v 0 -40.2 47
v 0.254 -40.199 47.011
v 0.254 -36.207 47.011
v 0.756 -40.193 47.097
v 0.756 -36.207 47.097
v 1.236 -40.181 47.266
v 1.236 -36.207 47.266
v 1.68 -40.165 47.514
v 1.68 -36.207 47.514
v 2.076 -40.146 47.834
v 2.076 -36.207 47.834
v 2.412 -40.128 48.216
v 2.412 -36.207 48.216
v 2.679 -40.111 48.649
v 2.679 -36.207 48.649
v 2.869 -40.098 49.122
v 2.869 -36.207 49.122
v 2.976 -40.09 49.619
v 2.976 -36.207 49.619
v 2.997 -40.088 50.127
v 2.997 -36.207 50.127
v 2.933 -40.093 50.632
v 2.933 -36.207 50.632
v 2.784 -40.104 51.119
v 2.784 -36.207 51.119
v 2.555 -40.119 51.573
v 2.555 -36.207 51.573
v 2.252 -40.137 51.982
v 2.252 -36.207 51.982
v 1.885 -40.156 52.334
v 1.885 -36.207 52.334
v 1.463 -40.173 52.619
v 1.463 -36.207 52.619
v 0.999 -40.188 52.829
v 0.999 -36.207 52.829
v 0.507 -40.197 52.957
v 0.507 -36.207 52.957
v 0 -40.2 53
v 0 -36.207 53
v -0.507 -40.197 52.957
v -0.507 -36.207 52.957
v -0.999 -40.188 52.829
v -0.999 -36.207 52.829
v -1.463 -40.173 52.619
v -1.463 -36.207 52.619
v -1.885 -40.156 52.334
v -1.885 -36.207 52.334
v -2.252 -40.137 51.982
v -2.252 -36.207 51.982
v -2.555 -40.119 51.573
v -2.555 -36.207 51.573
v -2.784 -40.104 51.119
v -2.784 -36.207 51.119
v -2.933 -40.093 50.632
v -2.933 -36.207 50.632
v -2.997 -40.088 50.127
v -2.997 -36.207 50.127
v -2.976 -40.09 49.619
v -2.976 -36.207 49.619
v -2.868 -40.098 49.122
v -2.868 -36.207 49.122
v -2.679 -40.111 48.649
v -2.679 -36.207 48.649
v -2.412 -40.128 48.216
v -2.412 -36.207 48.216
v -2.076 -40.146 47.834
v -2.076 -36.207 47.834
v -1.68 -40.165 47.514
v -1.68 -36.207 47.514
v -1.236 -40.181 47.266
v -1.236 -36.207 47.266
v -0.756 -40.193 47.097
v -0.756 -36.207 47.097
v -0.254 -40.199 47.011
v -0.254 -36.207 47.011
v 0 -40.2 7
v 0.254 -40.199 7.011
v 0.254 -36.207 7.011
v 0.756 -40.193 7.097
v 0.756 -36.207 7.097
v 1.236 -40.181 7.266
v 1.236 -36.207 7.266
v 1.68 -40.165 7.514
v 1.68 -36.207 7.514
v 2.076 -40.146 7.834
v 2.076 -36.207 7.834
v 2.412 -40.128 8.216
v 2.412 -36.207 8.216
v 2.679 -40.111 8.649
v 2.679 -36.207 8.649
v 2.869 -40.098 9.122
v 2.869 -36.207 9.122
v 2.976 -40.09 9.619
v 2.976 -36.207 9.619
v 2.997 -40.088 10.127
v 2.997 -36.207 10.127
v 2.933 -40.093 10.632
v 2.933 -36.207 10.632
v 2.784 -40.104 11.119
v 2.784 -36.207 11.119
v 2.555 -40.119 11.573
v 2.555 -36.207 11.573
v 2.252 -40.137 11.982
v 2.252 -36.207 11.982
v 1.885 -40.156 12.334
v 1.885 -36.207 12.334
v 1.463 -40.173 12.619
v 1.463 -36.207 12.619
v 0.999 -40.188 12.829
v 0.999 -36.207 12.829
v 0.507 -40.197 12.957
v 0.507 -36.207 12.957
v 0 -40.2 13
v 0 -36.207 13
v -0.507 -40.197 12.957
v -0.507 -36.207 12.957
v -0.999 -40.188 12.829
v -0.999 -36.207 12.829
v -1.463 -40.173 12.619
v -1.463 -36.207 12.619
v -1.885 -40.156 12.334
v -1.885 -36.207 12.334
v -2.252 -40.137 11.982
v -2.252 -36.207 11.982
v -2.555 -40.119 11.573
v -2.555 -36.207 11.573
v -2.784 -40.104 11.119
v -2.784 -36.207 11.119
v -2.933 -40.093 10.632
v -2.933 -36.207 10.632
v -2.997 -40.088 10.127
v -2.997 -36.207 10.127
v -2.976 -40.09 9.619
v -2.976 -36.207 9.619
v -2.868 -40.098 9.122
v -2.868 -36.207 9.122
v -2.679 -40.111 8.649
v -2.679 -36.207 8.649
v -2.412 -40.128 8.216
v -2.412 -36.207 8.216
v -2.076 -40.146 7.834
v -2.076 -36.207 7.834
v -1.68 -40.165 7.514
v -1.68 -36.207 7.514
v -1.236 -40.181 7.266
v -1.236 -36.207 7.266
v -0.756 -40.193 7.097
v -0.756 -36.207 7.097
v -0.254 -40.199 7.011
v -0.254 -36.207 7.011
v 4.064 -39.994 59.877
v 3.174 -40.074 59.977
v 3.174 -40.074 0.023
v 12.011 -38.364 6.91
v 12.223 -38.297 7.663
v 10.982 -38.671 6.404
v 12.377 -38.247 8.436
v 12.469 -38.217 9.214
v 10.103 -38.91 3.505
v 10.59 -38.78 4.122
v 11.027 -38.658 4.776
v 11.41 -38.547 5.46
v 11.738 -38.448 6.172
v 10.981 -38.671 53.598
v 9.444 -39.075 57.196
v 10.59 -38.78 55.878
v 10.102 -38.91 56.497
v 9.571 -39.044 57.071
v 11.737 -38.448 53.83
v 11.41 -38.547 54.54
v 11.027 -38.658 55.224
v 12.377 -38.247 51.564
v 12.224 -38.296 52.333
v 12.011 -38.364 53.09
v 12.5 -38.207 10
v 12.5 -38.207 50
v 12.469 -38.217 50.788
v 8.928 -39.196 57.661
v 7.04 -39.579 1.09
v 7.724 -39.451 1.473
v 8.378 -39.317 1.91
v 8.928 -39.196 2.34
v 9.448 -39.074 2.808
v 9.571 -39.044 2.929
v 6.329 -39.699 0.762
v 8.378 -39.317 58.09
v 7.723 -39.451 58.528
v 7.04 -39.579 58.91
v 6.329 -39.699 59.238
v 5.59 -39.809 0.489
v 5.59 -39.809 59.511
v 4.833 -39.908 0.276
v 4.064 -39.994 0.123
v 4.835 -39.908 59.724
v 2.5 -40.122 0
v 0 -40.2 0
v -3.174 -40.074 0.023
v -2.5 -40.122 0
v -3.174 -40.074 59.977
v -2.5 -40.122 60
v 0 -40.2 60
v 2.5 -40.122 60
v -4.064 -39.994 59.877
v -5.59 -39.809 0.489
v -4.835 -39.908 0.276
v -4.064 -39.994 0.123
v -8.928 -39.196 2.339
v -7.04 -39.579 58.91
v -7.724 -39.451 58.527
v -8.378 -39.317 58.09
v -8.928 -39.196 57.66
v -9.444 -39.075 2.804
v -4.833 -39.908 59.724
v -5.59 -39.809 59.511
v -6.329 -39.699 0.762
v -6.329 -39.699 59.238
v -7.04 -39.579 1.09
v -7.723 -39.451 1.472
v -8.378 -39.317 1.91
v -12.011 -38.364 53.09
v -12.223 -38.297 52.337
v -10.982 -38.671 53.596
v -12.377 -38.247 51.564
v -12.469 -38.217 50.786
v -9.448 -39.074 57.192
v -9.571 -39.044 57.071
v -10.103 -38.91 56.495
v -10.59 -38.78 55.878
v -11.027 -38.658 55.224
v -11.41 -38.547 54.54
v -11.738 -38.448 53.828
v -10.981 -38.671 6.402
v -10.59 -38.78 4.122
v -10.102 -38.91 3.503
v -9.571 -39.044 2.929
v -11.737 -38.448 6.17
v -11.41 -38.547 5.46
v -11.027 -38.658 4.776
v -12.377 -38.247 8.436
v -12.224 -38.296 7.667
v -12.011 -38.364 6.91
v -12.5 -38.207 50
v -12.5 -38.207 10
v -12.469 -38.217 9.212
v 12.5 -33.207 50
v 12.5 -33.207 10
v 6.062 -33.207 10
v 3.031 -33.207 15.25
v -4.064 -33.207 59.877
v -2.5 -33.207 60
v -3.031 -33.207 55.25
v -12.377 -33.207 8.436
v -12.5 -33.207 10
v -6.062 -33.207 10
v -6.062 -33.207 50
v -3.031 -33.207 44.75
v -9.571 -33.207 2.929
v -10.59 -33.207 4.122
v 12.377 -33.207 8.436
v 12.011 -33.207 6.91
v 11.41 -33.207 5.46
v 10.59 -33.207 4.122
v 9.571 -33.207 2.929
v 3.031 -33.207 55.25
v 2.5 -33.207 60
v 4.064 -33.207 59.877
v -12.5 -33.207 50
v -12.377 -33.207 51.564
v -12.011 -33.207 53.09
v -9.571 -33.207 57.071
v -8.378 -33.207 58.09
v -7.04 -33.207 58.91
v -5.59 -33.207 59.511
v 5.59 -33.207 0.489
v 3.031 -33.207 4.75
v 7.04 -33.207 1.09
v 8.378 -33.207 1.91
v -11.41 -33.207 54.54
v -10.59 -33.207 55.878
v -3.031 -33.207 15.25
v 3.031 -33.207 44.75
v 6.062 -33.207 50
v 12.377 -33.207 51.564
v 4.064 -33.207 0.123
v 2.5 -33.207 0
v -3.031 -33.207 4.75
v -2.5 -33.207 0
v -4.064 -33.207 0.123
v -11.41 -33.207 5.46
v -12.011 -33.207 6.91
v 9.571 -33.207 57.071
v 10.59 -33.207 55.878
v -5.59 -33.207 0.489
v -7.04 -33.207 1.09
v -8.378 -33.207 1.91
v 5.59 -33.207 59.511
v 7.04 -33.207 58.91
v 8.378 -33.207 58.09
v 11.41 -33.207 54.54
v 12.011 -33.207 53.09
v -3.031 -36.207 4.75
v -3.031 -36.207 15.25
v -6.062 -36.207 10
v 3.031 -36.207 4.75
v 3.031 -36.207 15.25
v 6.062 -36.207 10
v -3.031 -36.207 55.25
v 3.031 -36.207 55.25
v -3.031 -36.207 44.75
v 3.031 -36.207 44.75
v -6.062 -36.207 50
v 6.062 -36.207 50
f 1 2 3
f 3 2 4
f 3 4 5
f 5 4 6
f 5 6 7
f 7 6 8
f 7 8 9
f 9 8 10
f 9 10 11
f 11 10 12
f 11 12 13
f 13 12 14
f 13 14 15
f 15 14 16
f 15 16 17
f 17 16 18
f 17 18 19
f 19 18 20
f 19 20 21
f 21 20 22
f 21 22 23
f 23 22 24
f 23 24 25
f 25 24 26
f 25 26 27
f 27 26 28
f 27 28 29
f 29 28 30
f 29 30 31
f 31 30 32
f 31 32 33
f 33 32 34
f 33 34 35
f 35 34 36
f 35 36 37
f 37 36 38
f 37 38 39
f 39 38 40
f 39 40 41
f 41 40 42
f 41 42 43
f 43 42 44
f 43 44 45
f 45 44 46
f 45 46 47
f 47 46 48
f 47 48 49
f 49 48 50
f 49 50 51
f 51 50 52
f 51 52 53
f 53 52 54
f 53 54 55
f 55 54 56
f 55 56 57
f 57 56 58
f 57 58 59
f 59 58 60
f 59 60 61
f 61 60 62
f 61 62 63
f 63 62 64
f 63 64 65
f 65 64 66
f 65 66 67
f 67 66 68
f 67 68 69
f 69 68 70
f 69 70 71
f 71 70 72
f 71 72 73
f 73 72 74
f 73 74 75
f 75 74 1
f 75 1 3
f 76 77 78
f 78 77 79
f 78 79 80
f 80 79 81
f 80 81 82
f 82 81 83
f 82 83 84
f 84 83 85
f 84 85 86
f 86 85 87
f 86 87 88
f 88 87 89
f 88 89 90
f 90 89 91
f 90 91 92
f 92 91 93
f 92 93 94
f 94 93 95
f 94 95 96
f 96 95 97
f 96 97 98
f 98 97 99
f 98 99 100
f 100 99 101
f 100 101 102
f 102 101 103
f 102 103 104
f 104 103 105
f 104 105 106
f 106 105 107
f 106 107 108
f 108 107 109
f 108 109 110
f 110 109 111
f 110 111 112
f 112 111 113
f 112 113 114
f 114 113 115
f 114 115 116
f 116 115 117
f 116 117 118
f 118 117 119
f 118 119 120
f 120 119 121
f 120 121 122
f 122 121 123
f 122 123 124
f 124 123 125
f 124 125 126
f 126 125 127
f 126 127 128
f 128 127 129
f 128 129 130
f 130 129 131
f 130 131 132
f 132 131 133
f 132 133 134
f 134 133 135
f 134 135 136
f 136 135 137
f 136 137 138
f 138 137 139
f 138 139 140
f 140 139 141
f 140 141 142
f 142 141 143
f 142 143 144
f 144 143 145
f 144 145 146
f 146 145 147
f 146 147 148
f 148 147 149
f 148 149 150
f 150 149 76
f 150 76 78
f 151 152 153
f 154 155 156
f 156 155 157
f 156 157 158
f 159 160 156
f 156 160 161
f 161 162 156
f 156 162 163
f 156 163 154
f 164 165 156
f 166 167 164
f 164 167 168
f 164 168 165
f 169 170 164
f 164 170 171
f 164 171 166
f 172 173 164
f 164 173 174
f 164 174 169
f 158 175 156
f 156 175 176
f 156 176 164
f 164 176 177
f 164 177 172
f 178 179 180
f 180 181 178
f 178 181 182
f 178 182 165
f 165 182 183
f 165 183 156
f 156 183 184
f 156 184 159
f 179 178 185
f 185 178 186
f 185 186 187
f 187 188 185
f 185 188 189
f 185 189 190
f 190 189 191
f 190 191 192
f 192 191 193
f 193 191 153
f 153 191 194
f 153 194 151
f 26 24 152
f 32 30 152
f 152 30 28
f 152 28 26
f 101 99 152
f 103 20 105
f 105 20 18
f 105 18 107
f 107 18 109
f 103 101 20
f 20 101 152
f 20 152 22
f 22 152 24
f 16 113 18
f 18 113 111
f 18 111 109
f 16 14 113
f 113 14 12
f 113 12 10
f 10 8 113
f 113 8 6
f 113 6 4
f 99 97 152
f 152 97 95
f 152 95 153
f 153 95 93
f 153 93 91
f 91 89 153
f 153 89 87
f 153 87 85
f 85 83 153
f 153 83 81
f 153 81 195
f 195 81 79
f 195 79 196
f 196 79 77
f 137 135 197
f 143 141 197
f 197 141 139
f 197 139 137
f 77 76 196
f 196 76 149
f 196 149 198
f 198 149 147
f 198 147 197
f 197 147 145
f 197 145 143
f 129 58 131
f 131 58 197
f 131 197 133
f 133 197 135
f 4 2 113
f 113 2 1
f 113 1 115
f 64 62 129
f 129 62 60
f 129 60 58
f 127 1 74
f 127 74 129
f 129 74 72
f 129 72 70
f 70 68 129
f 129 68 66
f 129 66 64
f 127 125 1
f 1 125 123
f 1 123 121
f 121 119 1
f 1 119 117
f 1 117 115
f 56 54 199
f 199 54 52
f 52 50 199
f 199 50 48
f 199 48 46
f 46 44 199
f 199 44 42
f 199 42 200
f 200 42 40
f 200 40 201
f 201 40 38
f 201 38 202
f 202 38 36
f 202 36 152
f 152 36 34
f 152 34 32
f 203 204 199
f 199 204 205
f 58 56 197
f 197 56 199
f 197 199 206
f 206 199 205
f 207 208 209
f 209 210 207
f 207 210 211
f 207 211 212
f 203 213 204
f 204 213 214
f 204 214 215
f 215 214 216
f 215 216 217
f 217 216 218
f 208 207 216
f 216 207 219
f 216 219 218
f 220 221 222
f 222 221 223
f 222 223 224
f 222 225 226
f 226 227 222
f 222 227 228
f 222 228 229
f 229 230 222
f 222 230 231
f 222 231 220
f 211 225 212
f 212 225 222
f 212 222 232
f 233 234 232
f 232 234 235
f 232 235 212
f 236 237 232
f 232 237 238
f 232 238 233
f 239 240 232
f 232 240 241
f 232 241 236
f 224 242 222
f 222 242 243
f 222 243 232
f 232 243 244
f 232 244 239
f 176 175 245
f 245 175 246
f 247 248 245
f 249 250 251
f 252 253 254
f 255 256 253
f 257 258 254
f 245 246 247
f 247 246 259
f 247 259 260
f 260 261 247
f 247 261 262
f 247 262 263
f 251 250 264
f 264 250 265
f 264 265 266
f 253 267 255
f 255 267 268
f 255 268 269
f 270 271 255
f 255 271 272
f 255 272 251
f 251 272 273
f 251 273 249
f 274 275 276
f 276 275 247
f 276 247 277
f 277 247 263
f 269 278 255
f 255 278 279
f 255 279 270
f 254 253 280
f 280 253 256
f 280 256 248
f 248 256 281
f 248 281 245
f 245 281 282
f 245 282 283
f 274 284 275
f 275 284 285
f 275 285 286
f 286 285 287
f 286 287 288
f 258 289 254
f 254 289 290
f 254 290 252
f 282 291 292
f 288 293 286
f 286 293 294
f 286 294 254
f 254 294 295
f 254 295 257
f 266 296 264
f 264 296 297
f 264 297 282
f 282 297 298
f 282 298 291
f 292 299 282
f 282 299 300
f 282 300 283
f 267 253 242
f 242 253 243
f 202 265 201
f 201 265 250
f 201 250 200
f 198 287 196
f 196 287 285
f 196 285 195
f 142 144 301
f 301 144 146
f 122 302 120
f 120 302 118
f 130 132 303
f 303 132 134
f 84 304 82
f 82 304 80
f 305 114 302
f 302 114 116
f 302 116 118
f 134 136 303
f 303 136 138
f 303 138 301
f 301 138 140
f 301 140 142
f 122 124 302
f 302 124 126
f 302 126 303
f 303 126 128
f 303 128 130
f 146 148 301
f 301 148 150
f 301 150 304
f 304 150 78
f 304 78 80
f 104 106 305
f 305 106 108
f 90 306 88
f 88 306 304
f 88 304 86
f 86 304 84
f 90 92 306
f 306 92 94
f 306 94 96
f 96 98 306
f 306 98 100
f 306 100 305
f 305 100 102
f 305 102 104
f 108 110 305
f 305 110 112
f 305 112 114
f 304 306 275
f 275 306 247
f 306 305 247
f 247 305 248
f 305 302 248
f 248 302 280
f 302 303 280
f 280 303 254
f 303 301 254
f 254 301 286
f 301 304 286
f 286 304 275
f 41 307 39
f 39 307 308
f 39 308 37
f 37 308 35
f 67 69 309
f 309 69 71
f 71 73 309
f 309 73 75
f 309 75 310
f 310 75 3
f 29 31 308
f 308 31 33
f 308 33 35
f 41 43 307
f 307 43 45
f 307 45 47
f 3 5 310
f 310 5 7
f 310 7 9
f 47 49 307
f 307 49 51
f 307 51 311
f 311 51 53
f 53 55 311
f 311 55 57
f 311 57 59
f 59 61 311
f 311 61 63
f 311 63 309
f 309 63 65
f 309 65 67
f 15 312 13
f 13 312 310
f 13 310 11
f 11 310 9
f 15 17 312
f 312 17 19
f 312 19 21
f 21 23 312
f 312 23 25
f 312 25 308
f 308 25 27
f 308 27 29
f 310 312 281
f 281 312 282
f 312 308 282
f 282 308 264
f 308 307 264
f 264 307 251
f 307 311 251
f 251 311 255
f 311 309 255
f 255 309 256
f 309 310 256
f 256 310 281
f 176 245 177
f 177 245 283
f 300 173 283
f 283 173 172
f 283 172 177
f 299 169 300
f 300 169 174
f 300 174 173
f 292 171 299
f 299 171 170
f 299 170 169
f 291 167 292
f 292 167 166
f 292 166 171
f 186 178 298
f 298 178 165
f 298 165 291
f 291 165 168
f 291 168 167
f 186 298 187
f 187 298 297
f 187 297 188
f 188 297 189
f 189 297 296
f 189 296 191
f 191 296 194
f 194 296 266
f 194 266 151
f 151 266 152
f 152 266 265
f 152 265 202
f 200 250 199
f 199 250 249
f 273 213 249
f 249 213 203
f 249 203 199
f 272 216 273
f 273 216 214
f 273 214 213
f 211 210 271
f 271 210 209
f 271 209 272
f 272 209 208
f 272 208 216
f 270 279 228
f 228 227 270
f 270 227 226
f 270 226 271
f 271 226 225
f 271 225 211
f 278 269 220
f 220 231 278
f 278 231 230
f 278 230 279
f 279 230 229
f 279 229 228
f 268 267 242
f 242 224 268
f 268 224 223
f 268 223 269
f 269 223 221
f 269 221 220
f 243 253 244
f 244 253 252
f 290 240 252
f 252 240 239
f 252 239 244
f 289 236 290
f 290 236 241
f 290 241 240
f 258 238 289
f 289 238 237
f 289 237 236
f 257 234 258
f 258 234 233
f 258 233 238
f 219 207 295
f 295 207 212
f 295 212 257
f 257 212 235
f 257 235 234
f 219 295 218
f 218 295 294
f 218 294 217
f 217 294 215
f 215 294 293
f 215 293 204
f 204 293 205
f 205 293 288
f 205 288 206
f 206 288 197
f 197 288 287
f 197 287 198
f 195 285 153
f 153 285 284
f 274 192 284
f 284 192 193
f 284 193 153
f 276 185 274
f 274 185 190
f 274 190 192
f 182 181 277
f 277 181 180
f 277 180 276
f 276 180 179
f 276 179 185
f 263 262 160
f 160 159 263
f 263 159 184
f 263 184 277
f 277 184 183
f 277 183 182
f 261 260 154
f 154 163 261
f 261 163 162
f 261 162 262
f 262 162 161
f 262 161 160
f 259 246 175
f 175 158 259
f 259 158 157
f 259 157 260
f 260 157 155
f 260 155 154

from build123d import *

# Parameters (mm, degrees)
EXTRUDE_1_DEPTH          = 60
CUT_EXTRUDE_1_REACH      = 63.686
CUT_EXTRUDE_1_END_RADIUS = 40.2
SKETCH_2_R               = 3
CUT_EXTRUDE_2_DEPTH      = 3
FILLET_1_R               = 10


with BuildPart() as part:
    # Эскиз1 → Бобышка-Вытянуть1 (new body)
    with BuildSketch(Plane.XY):
        with BuildLine():
            Line((-12.5, -38.207198275), (-12.5, -33.207198275))
            Line((-12.5, -33.207198275), (12.5, -33.207198275))
            Line((12.5, -33.207198275), (12.5, -38.207198275))
            ThreePointArc((12.5, -38.207198275), (0, -40.2), (-12.5, -38.207198275))
        make_face()
    extrude(amount=EXTRUDE_1_DEPTH)

    # Вырез-Вытянуть1: up to this cylinder (the profile starts inside it)
    cut_extrude_1_end = Plane(origin=(0, 0, 30), z_dir=(0, 0, -1)) * Cylinder(CUT_EXTRUDE_1_END_RADIUS, 248.772, mode=Mode.PRIVATE)
    # Эскиз2 → Вырез-Вытянуть1 (cut, up to the surface)
    with BuildSketch(Plane(origin=(0, -33.207198275, 0), x_dir=(1, 0, 0), z_dir=(0, 1, 0)), mode=Mode.PRIVATE) as cut_extrude_1_sk1:
        with Locations(Location((0, -10, 0), (0, 0, 270))):
            Circle(SKETCH_2_R)
    cut_extrude_1_tool1 = extrude(cut_extrude_1_sk1.sketch, amount=-CUT_EXTRUDE_1_REACH, mode=Mode.PRIVATE) & cut_extrude_1_end
    add(cut_extrude_1_tool1.solids().sort_by_distance((0, -33.207198, 10))[0], mode=Mode.SUBTRACT)
    # Эскиз2 → Вырез-Вытянуть1 (cut, up to the surface)
    with BuildSketch(Plane(origin=(0, -33.207198275, 0), x_dir=(1, 0, 0), z_dir=(0, 1, 0)), mode=Mode.PRIVATE) as cut_extrude_1_sk2:
        with Locations(Location((0, -50, 0), (0, 0, 270))):
            Circle(SKETCH_2_R)
    cut_extrude_1_tool2 = extrude(cut_extrude_1_sk2.sketch, amount=-CUT_EXTRUDE_1_REACH, mode=Mode.PRIVATE) & cut_extrude_1_end
    add(cut_extrude_1_tool2.solids().sort_by_distance((0, -33.207198, 50))[0], mode=Mode.SUBTRACT)

    # Эскиз3 → Вырез-Вытянуть2 (cut)
    with BuildSketch(Plane(origin=(0, -33.207198275, 0), x_dir=(1, 0, 0), z_dir=(0, 1, 0))):
        Polygon((3.031088913, -4.75), (-3.031088913, -4.75), (-6.062177826, -10), (-3.031088913, -15.25), (3.031088913, -15.25), (6.062177826, -10), align=None)
        Polygon((3.031088913, -44.75), (-3.031088913, -44.75), (-6.062177826, -50), (-3.031088913, -55.25), (3.031088913, -55.25), (6.062177826, -50), align=None)
    extrude(amount=-CUT_EXTRUDE_2_DEPTH, mode=Mode.SUBTRACT)

    # Скругление1
    fillet_1_edges = [part.edges().sort_by_distance(p)[0] for p in [
        (-12.5, -35.707198275, 60),
        (-12.5, -35.707198275, 0),
        (12.5, -35.707198275, 0),
        (12.5, -35.707198275, 60),
    ]]
    fillet(fillet_1_edges, radius=FILLET_1_R)


solid = part.part
